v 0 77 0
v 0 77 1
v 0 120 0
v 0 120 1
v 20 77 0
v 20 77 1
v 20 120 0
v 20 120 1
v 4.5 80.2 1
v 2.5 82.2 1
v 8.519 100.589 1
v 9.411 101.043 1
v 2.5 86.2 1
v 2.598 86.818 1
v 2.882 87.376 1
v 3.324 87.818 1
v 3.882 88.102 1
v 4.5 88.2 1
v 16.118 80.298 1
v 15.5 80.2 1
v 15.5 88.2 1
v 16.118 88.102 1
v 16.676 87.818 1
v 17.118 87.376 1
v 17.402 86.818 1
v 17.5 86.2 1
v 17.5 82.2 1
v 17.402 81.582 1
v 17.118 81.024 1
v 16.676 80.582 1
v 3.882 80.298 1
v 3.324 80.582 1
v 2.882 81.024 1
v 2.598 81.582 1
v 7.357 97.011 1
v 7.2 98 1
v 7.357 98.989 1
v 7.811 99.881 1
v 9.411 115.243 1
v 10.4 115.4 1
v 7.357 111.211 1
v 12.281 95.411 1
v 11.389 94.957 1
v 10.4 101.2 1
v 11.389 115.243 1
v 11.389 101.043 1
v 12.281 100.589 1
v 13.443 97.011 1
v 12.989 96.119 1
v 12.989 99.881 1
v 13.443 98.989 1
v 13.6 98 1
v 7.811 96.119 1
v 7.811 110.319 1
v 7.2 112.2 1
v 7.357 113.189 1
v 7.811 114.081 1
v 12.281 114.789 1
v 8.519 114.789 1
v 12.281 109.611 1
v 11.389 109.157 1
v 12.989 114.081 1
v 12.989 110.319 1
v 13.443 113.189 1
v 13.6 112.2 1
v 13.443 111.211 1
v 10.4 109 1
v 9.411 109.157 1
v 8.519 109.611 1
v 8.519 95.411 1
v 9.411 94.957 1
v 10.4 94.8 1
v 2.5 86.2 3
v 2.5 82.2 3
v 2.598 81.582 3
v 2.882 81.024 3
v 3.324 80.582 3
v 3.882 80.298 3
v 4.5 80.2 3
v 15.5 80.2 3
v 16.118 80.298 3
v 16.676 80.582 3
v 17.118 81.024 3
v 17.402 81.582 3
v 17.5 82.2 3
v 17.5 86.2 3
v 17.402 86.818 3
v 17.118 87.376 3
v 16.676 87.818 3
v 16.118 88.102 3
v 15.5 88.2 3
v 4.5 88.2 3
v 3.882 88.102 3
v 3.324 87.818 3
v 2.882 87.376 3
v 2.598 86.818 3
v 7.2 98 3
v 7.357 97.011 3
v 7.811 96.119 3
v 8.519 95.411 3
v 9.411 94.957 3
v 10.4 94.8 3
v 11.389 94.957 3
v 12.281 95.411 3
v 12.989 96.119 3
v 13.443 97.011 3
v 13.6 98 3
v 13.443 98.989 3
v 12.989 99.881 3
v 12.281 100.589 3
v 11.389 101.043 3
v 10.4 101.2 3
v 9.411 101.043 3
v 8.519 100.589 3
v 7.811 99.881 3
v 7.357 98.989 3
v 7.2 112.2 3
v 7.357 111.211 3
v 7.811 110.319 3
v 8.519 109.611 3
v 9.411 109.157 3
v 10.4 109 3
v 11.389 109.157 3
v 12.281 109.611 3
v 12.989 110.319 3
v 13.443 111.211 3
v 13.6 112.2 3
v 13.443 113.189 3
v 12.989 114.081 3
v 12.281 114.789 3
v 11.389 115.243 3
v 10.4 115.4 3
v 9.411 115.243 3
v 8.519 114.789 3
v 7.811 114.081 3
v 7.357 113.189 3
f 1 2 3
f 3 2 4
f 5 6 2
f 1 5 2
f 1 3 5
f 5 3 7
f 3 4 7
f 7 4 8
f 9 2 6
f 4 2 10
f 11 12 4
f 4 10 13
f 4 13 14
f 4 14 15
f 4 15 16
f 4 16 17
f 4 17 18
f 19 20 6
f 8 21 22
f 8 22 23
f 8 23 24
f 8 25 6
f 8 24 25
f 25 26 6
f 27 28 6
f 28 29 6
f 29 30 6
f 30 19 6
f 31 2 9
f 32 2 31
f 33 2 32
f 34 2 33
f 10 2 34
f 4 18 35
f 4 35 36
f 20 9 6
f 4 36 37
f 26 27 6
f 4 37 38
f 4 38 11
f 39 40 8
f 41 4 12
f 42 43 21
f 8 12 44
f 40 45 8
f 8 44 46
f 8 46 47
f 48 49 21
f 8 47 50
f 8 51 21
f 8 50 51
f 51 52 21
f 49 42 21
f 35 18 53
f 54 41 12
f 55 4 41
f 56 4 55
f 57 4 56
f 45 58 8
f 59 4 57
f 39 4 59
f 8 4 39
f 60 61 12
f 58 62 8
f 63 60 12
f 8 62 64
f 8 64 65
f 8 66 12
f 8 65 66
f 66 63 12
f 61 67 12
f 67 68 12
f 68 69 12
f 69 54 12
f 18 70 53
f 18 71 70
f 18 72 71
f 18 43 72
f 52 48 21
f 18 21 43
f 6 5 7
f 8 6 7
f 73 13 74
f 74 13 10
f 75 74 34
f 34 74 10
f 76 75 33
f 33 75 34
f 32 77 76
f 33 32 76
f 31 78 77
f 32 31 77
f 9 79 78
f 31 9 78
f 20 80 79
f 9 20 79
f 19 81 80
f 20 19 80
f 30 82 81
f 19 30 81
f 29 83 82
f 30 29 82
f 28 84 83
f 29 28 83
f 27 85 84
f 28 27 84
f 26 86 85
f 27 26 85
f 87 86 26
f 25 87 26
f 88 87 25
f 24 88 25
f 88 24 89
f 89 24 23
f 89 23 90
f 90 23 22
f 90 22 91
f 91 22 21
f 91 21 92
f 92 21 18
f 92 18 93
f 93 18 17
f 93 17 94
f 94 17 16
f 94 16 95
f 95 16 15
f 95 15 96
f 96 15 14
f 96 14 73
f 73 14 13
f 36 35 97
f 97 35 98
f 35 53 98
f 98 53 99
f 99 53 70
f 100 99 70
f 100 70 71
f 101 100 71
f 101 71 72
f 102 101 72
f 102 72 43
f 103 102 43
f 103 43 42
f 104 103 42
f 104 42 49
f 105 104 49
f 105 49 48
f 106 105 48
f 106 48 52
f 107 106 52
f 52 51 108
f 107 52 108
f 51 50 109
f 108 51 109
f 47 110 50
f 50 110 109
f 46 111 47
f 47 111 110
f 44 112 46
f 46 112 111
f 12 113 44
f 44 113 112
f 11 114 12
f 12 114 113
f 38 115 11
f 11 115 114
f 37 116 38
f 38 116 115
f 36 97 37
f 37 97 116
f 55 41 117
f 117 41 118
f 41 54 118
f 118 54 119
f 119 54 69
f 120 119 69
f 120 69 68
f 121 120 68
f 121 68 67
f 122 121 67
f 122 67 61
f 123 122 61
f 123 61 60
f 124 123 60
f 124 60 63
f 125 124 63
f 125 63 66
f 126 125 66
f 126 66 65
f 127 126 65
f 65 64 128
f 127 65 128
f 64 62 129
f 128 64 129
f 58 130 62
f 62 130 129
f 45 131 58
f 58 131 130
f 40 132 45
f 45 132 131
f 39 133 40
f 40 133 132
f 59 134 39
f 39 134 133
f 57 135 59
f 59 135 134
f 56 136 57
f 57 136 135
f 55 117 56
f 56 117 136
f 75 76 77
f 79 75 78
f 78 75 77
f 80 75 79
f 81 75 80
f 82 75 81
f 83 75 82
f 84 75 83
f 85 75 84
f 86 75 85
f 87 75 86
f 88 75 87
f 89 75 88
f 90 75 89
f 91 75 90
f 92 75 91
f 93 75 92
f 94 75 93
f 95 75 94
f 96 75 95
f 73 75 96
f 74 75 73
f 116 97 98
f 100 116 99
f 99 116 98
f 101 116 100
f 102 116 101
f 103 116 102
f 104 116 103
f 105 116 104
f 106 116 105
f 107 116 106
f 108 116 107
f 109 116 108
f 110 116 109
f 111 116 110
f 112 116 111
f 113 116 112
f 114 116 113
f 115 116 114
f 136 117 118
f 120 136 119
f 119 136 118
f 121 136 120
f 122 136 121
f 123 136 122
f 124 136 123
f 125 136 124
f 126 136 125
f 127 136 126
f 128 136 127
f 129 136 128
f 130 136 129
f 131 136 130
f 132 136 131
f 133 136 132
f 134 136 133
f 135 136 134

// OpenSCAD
jack_diameter = 6.5;
width = 20;

module elements() {
	cube([width, 120, 1]);

	// Tel	
	translate([(width - 14) / 2 + 2, 3 - 0.3, 1]) 
		minkowski() {
			cube([10, 10.2, 1]);
			cylinder(r=2, h=1, $fn=20);
		}
	
	// Eth
	translate([(width - 14) / 2 + 2, 21, 1]) 
		minkowski() {
			cube([10, 12, 1]);
			cylinder(r=2, h=1, $fn=20);
		}
	
	// FW 1
	translate([(width - 11) / 2 + 2, 21 + 16 + 4.5, 1]) 
		minkowski() {
			cube([7, 9.5, 1]);
			cylinder(r=2, h=1, $fn=20);
		}
	
	// FW 2
	translate([(width - 9) / 2 + 2, 21 + 16 + 4.5 + 13 + 3.8, 1]) 
	
		minkowski() {
			difference() {
				cube([7, 5, 1]);
				translate([0, 3, 0])
					rotate([0, 0, 45])
						cube([3.53, 3.53, 1]);
				translate([0, -3, 0])
					rotate([0, 0, 45])
						cube([3.53, 3.53, 1]);

			}
			cylinder(r=2, h=1, $fn=20);
	}

	// USB 1
	translate([(width - 15) / 2 + 2, 21 + 16 + 4.5 + 13 + 3.8 + 9 + 3.4, 1]) 
		minkowski() {
			cube([11, 4, 1]);
			cylinder(r=2, h=1, $fn=20);
		}

	// USB 2
	translate([(width - 15) / 2 + 2, 21 + 16 + 4.5 + 13 + 3.8 + 9 + 3.4 + 8 + 3.5, 1]) 
		minkowski() {
			cube([11, 4, 1]);
			cylinder(r=2, h=1, $fn=20);
		}

	// Audio In
	translate([(width - 3.2) / 2 + 2, 21 + 16 + 4.5 + 13 + 3.8 + 9 + 3.4 + 8 + 3.5 + 8 + 6.7 + 1.1, 1]) 
		cylinder(r=3.2, h=2, $fn=20);

	// Audio Out
	translate([(width - 3.2) / 2 + 2, 21 + 16 + 4.5 + 13 + 3.8 + 9 + 3.4 + 8 + 3.5 + 8 + 6.7 + 3 + 6.3 + 6, 1]) 
		cylinder(r=3.2, h=2, $fn=20);
}

difference() {
	elements();
	translate([-5, -5, -1])
		cube([30, 82 , 8]);
}
